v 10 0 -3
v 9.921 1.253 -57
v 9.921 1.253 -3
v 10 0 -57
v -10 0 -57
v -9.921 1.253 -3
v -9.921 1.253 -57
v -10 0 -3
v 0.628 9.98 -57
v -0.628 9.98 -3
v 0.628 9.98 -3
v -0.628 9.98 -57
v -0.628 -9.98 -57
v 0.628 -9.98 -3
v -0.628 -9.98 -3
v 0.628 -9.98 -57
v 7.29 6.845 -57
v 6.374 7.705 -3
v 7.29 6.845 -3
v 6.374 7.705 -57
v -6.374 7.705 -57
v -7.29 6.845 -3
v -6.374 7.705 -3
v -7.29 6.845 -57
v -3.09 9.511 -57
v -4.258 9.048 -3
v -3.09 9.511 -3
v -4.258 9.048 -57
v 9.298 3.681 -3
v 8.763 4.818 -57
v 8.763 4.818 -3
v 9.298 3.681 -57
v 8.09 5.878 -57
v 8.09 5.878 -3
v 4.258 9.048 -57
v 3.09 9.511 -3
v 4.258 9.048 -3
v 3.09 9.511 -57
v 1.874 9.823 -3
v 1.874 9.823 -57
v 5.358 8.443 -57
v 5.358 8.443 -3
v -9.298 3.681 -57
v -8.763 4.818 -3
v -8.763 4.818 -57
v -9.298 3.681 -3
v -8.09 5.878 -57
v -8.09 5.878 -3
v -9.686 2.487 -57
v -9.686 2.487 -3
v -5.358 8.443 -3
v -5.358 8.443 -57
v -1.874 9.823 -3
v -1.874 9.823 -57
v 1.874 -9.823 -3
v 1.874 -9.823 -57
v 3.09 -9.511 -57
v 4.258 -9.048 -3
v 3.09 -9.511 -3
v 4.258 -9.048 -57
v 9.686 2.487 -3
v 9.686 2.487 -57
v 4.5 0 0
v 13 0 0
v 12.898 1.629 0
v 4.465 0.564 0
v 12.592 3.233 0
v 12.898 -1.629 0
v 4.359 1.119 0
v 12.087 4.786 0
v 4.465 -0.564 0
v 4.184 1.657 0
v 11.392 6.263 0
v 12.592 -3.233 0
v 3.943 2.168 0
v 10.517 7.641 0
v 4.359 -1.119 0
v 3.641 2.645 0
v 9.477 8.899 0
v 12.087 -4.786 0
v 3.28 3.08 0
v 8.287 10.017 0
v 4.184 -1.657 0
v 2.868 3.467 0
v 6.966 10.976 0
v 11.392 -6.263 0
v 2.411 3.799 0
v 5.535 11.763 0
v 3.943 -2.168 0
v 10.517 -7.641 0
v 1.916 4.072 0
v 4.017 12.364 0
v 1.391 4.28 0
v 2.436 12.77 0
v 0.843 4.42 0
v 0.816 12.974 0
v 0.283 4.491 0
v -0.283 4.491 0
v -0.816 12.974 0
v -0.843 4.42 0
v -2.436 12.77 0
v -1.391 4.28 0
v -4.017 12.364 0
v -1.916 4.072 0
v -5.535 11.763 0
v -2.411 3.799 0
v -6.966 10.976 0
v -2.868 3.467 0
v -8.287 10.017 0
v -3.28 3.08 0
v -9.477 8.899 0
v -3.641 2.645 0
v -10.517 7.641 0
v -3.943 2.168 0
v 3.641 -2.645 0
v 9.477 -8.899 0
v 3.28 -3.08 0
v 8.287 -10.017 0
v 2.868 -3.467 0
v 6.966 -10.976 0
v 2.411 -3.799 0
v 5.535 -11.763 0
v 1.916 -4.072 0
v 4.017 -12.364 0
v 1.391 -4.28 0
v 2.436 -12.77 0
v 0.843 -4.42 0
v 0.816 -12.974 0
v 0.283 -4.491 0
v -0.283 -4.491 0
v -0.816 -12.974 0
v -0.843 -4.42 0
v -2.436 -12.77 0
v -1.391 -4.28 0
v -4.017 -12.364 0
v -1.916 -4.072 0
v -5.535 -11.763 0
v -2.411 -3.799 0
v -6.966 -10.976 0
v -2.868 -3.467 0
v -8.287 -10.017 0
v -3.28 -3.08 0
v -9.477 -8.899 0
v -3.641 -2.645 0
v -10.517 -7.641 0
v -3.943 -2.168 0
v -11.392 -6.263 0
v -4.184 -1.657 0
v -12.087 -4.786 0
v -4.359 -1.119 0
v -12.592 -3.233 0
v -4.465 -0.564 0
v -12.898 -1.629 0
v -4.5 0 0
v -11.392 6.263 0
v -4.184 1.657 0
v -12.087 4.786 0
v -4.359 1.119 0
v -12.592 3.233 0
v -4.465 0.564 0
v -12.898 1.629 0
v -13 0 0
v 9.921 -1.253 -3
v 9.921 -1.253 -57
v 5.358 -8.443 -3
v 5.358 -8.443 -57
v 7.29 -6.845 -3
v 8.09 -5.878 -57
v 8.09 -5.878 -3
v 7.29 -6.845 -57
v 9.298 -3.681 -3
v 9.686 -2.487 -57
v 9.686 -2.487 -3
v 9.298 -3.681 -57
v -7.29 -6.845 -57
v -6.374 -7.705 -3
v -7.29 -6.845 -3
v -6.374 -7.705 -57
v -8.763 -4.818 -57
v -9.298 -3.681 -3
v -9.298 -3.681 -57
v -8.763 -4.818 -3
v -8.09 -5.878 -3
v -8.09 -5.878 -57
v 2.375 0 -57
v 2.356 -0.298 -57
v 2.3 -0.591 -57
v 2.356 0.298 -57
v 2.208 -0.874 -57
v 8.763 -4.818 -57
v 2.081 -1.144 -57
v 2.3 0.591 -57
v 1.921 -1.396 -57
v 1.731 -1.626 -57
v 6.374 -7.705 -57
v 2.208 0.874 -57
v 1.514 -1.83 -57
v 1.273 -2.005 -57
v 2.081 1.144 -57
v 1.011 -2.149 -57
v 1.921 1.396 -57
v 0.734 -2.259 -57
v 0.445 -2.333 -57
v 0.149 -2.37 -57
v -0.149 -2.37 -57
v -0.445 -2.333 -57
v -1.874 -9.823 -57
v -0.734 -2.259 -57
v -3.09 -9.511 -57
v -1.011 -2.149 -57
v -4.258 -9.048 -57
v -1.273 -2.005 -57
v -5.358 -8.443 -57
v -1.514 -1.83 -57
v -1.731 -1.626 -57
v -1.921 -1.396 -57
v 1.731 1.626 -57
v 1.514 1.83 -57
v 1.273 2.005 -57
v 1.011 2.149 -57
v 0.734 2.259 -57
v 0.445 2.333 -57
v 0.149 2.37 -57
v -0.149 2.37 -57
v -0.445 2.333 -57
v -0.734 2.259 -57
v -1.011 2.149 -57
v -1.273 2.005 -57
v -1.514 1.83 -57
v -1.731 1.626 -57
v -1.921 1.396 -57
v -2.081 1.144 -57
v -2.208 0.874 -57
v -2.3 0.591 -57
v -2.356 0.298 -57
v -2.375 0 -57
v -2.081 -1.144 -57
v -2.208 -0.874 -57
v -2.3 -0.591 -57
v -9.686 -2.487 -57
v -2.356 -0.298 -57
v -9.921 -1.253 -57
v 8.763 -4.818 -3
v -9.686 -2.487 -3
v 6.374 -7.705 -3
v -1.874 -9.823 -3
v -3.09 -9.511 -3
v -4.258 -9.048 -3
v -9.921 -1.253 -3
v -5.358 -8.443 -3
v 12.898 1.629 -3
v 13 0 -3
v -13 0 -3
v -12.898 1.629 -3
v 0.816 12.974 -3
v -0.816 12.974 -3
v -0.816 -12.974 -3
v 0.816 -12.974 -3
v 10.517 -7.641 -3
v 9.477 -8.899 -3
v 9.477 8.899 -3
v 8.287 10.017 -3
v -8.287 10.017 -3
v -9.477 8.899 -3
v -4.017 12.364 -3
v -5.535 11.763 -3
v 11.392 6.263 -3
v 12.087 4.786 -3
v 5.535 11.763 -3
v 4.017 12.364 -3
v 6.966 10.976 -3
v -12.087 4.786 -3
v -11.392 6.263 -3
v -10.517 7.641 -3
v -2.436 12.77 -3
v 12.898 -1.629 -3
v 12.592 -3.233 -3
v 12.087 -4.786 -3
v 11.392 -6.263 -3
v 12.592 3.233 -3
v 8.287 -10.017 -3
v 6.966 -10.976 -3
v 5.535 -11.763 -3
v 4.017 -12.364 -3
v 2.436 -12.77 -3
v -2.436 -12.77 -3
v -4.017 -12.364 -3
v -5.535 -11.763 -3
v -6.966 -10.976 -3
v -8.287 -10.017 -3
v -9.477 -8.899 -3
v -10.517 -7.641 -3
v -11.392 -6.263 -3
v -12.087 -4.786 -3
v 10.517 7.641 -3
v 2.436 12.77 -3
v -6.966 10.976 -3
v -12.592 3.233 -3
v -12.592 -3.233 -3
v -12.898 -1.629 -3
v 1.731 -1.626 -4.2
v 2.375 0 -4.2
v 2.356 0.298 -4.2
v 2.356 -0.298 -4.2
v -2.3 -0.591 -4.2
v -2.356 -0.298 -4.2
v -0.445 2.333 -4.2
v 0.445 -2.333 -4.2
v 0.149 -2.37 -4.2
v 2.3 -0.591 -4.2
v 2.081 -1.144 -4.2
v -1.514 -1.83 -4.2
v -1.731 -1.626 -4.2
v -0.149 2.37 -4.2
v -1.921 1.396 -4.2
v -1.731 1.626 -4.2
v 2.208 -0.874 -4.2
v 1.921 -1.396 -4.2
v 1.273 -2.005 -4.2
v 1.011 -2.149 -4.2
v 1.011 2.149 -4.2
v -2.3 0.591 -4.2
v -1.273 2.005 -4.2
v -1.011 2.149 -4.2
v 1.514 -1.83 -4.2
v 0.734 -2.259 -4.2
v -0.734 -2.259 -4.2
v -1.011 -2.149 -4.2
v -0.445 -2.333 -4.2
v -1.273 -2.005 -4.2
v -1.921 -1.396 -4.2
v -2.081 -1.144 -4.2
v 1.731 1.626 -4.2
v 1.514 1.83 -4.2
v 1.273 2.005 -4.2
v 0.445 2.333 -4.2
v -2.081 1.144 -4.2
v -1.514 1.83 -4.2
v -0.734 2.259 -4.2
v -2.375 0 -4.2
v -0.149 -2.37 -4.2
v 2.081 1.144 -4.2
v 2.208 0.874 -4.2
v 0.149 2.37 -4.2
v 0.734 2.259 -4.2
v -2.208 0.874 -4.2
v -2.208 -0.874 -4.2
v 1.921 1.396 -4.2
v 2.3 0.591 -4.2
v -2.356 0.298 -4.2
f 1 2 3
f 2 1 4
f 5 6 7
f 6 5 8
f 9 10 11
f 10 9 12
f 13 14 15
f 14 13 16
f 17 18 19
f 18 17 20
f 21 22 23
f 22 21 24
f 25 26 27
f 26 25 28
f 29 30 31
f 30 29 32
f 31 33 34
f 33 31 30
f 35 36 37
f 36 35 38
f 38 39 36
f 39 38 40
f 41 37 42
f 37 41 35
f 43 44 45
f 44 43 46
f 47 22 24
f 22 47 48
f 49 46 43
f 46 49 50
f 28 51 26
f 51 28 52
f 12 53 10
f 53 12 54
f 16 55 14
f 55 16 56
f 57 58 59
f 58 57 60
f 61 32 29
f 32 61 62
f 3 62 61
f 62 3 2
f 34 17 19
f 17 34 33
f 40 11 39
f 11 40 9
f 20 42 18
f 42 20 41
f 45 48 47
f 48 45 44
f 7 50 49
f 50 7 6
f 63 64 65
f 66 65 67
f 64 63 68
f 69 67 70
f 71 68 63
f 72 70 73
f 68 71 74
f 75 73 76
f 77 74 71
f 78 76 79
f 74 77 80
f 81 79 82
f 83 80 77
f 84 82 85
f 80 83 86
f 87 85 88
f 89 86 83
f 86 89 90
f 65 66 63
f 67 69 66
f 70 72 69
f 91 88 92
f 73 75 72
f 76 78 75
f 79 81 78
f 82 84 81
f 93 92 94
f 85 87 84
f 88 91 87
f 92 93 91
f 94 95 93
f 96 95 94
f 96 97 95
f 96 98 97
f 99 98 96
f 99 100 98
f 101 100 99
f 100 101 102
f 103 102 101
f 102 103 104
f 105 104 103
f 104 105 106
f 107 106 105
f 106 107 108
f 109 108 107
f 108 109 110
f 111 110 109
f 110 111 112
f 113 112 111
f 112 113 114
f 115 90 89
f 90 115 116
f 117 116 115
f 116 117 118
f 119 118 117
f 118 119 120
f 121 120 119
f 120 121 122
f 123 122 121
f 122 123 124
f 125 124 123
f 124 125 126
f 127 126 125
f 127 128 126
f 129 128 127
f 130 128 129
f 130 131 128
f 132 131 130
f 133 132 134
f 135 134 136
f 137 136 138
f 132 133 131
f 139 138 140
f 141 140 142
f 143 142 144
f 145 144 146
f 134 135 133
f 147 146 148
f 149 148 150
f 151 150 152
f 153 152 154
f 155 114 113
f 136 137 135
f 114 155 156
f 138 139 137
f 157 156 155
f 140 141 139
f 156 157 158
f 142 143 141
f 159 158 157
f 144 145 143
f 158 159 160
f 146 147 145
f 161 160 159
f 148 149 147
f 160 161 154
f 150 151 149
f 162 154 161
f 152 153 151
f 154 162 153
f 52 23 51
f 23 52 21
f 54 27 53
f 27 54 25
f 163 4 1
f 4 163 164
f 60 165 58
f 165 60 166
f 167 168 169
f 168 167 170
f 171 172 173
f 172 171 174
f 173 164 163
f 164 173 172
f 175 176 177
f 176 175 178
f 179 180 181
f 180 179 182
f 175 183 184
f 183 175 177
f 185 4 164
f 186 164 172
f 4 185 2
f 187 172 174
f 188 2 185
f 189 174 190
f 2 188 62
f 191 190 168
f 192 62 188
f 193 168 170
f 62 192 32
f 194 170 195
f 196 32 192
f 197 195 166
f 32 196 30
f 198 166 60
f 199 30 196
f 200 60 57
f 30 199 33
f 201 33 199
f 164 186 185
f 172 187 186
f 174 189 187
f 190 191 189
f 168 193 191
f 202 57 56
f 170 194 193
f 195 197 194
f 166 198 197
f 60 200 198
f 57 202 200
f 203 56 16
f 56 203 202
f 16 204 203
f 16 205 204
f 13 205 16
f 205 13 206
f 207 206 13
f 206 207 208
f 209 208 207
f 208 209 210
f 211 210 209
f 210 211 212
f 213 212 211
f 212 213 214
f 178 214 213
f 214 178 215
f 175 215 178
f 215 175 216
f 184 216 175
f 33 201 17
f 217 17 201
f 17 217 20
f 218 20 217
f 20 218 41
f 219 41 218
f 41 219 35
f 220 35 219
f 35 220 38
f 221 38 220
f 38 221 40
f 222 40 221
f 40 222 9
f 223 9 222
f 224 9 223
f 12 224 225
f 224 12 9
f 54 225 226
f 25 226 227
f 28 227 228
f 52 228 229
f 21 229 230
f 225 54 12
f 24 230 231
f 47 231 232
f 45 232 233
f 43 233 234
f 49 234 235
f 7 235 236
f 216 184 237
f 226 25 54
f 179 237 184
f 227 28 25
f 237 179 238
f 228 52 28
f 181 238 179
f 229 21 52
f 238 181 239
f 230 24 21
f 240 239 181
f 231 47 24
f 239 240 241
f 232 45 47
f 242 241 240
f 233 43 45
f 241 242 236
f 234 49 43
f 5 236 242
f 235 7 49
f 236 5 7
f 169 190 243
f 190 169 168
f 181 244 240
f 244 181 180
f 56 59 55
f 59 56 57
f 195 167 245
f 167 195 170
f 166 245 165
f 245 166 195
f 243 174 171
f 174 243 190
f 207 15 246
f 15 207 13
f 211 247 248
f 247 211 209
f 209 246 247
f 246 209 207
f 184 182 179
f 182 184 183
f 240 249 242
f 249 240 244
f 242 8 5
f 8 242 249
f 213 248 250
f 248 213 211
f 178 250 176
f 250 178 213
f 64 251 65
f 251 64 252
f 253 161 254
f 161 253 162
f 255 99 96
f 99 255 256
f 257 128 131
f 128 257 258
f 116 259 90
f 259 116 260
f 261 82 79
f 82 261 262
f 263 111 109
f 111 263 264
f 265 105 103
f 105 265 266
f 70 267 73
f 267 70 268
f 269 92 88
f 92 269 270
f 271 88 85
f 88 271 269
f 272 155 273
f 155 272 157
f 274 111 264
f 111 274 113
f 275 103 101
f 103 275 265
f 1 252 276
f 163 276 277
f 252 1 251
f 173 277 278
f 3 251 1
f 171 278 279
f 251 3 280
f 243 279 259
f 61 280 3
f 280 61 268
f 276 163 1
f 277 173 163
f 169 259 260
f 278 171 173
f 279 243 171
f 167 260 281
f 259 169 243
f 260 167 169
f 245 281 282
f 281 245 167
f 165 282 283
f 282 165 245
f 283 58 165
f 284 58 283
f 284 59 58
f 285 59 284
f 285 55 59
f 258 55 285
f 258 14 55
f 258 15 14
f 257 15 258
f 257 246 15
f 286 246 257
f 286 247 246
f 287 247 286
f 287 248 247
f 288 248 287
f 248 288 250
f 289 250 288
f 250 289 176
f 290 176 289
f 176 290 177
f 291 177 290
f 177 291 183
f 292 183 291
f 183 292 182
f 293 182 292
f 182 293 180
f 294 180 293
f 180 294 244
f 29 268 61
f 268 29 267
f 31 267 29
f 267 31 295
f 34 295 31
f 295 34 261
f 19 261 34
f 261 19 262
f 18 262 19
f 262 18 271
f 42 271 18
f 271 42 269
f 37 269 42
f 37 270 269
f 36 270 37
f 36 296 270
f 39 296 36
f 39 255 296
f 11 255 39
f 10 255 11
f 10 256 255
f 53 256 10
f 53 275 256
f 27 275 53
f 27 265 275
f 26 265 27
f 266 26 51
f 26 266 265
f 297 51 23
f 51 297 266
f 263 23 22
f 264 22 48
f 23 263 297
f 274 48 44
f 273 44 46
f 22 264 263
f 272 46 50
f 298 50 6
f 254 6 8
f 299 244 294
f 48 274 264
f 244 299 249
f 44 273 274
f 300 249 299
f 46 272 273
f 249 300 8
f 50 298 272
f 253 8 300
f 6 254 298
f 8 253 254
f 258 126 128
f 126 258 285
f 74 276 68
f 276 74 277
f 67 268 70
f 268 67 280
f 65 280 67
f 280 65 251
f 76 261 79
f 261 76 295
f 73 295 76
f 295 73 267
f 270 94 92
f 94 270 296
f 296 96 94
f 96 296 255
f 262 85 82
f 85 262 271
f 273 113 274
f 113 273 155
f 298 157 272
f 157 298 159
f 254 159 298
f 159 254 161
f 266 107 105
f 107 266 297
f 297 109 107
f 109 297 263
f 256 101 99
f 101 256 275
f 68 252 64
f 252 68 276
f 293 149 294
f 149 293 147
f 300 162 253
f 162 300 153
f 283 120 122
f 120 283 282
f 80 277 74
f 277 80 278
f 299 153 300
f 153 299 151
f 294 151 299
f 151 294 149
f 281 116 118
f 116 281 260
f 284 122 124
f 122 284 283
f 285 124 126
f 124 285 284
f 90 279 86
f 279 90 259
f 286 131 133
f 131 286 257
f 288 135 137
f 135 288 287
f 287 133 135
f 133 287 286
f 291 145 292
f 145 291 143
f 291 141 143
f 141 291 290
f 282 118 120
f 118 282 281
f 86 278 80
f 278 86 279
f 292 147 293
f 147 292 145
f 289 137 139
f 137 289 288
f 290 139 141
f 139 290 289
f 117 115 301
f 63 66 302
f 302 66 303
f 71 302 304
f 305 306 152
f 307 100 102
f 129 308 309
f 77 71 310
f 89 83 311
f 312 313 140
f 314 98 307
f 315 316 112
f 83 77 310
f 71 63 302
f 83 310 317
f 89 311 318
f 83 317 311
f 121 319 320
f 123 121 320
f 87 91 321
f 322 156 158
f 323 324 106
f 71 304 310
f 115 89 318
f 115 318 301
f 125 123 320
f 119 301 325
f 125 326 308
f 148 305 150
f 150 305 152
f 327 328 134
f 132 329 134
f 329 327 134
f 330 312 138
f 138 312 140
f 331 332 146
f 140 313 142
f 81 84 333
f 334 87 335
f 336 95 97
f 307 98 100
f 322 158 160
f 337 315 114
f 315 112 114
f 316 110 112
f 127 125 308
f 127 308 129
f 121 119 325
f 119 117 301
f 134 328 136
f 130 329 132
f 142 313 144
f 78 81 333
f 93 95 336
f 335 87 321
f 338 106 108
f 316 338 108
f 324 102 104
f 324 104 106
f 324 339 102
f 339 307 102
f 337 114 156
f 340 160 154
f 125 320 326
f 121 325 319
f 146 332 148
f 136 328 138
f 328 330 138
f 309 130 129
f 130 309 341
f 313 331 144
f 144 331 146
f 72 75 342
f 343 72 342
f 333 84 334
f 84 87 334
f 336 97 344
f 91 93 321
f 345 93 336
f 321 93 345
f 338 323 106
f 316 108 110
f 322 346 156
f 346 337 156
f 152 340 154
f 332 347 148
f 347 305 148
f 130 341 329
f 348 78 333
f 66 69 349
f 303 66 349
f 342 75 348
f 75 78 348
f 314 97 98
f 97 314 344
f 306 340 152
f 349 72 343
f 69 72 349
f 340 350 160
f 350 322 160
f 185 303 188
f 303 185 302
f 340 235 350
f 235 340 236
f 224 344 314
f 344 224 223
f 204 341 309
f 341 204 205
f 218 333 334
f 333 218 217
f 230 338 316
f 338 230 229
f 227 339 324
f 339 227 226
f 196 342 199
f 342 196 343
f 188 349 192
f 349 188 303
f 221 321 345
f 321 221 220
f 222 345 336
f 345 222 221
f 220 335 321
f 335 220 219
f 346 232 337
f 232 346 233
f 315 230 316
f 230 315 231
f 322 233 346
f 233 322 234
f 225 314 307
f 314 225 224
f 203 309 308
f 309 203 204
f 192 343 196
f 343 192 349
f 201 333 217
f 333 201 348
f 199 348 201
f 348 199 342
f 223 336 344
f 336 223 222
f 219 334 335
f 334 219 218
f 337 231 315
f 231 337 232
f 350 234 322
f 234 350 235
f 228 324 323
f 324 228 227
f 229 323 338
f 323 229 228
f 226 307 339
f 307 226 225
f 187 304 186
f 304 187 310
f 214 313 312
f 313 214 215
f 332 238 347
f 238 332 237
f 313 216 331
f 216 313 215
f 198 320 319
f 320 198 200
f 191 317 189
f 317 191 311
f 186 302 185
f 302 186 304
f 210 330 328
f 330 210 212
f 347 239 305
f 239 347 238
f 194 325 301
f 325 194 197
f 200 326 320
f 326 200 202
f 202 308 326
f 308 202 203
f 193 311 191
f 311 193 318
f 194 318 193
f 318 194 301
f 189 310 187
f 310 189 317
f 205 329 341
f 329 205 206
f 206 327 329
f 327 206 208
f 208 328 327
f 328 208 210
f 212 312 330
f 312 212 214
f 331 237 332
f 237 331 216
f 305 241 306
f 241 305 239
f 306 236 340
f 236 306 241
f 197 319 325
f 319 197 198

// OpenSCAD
$fn = 50;


difference() {
	union() {
		translate(v = [0, 0, -57.0000000000]) {
			cylinder(h = 57, r = 10.0000000000);
		}
		translate(v = [0, 0, -3.0000000000]) {
			cylinder(h = 3, r = 13.0000000000);
		}
	}
	union() {
		translate(v = [0, 0, 0]) {
			rotate(a = [0, 0, 0]) {
				difference() {
					union() {
						#translate(v = [0, 0, -57.0000000000]) {
							cylinder(h = 57, r = 2.2500000000);
						}
						#translate(v = [0, 0, -4.2000000000]) {
							cylinder(h = 4.2000000000, r = 10.0000000000, r1 = 2.3750000000, r2 = 4.5000000000);
						}
						#translate(v = [0, 0, -57.0000000000]) {
							cylinder(h = 57, r = 2.3750000000);
						}
						#translate(v = [0, 0, -57.0000000000]) {
							cylinder(h = 57, r = 2.2500000000);
						}
					}
					union();
				}
			}
		}
	}
}
